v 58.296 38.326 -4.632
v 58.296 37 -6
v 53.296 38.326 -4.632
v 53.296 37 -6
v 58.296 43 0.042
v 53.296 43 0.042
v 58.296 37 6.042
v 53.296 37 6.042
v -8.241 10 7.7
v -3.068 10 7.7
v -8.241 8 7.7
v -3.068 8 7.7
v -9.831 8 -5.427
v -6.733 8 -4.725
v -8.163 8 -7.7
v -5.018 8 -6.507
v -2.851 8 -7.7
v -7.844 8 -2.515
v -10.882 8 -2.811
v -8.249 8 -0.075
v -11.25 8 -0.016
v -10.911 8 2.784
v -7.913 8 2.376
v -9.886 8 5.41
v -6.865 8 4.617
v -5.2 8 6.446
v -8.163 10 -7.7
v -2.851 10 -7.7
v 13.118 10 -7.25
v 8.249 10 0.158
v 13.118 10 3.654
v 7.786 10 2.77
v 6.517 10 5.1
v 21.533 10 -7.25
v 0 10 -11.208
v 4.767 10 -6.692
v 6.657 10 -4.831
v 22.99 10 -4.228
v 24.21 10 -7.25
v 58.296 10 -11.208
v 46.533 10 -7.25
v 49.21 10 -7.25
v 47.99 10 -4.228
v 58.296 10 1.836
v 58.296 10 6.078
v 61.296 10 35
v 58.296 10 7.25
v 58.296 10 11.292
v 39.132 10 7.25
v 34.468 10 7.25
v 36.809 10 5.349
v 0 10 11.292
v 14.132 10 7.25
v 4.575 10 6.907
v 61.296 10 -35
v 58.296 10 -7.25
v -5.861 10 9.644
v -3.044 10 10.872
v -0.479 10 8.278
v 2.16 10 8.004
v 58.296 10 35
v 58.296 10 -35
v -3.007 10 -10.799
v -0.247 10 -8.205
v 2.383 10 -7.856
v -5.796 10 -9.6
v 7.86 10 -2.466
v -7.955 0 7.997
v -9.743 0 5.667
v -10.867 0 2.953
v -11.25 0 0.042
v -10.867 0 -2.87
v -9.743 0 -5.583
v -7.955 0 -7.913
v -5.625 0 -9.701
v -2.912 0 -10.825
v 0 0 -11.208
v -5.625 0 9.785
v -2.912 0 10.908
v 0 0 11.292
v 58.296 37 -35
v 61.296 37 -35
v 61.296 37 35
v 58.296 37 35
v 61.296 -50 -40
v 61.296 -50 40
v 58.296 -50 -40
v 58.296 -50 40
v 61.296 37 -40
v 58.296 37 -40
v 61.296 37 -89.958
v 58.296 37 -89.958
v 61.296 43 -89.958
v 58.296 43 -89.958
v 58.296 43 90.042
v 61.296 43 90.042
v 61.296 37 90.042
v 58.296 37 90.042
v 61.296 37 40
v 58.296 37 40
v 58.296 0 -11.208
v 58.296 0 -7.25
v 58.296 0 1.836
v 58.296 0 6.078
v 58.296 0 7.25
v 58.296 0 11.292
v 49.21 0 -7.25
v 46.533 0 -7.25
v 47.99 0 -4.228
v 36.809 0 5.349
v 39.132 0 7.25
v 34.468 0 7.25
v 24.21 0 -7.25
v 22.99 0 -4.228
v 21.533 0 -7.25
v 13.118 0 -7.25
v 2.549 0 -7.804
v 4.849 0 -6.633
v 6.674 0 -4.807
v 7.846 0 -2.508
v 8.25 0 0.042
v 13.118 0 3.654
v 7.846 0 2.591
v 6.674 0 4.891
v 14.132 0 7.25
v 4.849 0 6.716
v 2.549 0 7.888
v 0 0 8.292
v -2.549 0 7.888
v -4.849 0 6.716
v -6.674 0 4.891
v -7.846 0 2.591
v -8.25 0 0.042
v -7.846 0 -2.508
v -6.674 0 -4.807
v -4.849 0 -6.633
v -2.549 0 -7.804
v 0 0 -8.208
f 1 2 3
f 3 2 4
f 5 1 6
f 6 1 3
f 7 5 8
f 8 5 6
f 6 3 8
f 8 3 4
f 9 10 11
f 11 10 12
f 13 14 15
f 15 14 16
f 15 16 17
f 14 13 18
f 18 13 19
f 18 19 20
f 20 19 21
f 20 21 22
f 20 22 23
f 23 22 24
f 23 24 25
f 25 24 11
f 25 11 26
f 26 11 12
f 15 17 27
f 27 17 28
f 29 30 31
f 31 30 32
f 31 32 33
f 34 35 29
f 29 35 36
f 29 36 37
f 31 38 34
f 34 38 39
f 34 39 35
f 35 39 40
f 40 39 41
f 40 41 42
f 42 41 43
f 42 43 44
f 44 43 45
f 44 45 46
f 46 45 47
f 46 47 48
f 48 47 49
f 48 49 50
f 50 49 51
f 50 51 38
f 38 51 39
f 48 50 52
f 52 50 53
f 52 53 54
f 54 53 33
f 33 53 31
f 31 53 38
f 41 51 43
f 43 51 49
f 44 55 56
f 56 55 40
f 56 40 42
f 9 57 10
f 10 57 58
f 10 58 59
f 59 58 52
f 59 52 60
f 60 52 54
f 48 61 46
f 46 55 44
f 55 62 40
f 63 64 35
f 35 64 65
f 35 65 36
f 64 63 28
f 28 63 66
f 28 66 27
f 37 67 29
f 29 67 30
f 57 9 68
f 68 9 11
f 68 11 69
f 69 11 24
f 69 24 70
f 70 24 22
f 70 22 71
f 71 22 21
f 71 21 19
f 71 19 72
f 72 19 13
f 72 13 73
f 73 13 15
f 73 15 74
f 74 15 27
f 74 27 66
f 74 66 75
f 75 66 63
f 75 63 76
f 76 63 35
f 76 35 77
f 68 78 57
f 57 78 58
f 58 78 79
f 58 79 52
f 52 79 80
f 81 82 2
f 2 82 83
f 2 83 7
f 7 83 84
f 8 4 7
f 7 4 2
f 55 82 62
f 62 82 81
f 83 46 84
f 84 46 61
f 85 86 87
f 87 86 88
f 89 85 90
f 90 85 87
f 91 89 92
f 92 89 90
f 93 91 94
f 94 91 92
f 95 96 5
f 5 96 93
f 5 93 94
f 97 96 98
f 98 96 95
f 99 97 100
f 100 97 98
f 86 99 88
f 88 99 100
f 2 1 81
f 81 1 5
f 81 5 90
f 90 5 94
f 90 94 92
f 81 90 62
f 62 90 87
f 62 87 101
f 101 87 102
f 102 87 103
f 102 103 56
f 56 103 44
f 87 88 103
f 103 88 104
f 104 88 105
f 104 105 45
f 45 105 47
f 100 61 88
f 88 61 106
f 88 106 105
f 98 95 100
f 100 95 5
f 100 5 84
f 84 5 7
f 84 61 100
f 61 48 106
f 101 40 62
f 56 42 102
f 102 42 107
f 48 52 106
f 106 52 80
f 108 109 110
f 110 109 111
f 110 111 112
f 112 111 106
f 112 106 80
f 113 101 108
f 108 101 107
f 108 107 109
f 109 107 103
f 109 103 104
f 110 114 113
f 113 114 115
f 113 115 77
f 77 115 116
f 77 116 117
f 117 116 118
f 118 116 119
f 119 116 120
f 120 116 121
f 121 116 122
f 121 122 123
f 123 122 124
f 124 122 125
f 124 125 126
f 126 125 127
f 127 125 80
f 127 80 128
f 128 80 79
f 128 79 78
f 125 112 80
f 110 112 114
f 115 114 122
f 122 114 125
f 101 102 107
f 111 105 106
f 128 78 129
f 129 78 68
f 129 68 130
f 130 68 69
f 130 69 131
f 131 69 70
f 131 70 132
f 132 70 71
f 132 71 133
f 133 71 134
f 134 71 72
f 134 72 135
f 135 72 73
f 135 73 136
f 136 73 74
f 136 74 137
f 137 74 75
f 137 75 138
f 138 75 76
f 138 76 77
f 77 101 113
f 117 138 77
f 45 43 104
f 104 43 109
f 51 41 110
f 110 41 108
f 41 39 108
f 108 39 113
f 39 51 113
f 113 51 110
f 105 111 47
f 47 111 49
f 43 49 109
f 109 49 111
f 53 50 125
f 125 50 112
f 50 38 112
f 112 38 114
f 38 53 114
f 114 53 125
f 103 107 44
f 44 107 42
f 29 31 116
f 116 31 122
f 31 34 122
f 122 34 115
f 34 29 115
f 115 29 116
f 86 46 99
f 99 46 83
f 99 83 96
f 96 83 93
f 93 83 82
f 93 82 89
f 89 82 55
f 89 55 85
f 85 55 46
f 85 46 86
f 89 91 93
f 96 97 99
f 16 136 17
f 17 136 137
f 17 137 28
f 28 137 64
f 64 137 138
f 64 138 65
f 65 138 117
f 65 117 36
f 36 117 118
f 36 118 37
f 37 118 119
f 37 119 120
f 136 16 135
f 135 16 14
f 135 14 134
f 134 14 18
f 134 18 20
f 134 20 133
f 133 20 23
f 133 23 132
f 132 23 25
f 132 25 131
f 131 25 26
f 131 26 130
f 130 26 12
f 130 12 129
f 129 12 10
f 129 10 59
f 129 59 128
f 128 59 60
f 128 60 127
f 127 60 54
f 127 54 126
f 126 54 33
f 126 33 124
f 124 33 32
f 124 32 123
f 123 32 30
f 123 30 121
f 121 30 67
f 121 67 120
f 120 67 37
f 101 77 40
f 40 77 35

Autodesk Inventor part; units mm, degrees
ref_plane "YZ Plane" through (0, 0, 0) normal (1, 0, 0) x (0, 1, 0)
ref_plane "XZ Plane" through (0, 0, 0) normal (0, 1, 0) x (-1, 0, 0)
ref_plane "XY Plane" through (0, 0, 0) normal (0, 0, 1) x (1, 0, 0)
sketch "Sketch1" plane through (0, 0, 0) normal (0, 1, 0) x (-1, 0, 0)
  line L0 (-122.594, 12.25) -> (-122.594, -12.2908)
  line L1 (-61.296, -11.2083) -> (-61.296, 11.2917)
  line L2 (0, 0) -> (-13.1, 0)
  line L3 (-61.296, 0) -> (-63.296, 0)
  circle A0 centre (0, 0.0417) radius 8.25
  arc A1 (0, -11.2083) -> (0, 11.2917) centre (0, 0.0417) ccw
  line L4 (0, -11.2083) -> (-61.296, -11.2083)
  line L5 (0, 11.2917) -> (-61.296, 11.2917)
  dimension "d24" = 61.296
  dimension "d28" = 16.5
  dimension "d30" = 3
extrude "Extrusion1" add sketch "Sketch1" along normal blind 10
sketch "Sketch3" plane through (0, 10, 0) normal (0, 1, 0) x (1, 0, 0)
  line L0 (8.1183, -12.2504) -> (8.1163, 12.2496)
  line L1 (13.1167, 7.25) -> (13.1179, -7.25)
  line L2 (39.1319, -7.25) -> (47.9899, 4.2277)
  line L3 (36.5087, -5.7388) -> (46.5328, 7.25)
  line L4 (49.2102, 7.25) -> (62.1991, -5.7388)
  line L5 (13.1179, -7.25) -> (61.3127, -7.25)
  line L6 (61.296, -11.2917) -> (61.296, 11.2083) projected
  line L7 (13.1167, 7.25) -> (61.3127, 7.25)
  line L8 (61.3127, -7.25) -> (61.3127, 7.25)
  line L9 (47.9899, 4.2277) -> (59.4676, -7.25)
  line L10 (61.296, -9.1202) -> (61.4899, -9.3141)
  line L11 (49.2102, 7.25) -> (61.296, -4.8775)
  line L12 (13.1179, -7.25) -> (21.1056, -7.25)
  line L13 (21.1056, 7.25) -> (13.1179, 7.25)
  line L14 (13.1179, 7.25) -> (13.1179, -7.25)
  line L15 (24.1056, -7.25) -> (33.7772, -7.25)
  line L16 (21.1057, 5.5674) -> (21.1056, 5.5673)
  line L17 (23.5198, 7.25) -> (23.5198, -7.25)
  line L18 (36.5087, -5.7388) -> (35.3424, -7.25)
  line L19 (11.5087, -5.7388) -> (10.3424, -7.25)
  line L20 (11.5087, -5.7388) -> (21.5328, 7.25)
  line L21 (14.1319, -7.25) -> (22.9899, 4.2277)
  line L22 (22.9899, 4.2277) -> (34.4676, -7.25)
  line L23 (24.2102, 7.25) -> (36.296, -4.8775)
  line L24 (24.2102, 7.25) -> (37.1991, -5.7388)
  line L25 (36.3127, -7.25) -> (36.3127, 7.25)
  line L26 (36.296, -9.1202) -> (36.4899, -9.3141)
  point P0 (0, 0)
  point P1 (0, 0)
  point P2 (61.297, -12.25)
  point P3 (61.295, 12.2704)
  point P4 (62.1991, -5.7388)
  point P5 (61.2954, 7.25)
  point P6 (61.296, -4.8358)
  point P7 (61.296, -7.25)
  point P8 (61.296, 7.25)
  point P9 (13.1179, -1.906)
  point P10 (36.8094, -5.3492)
  point P11 (13.1179, -3.6537)
  point P12 (21.5328, 7.25)
  dimension "d9" = 5
  dimension "d53" = 25
extrude "Extrusion2" cut sketch "Sketch3" against normal blind 10 contours L7 L20 L1 | L21 L22 L17 L5 | L7 L25 L24 | L22 L5 L17 | L7 L3 L24 L25 | L7 L6 L4 | L2 L9 L5
sketch "Sketch7" plane through (0, 10, 0) normal (0, 1, 0) x (1, 0, 0)
  circle A0 centre (0, 0) radius 62.296
  dimension "d20" = 124.592
sketch "Sketch8" plane through (61.296, 0, 12.25) normal (1, 0, 0) x (0, 0, -1)
  line L0 (-27.75, 0) -> (52.25, 0)
  line L1 (52.25, 0) -> (52.25, 10)
  line L2 (52.25, 10) -> (-27.75, 10)
  line L3 (-27.75, 10) -> (-27.75, 0)
  line L4 (-27.75, 0) -> (52.25, 10) construction
  line L5 (52.25, 0) -> (-27.75, 10) construction
  line L6 (52.25, 10) -> (-27.75, 10)
  line L7 (-27.75, 10) -> (-27.75, -50)
  line L8 (-27.75, -50) -> (52.25, -50)
  line L9 (52.25, -50) -> (52.25, 10)
  line L10 (52.25, 10) -> (47.25, 10)
  line L11 (47.25, 10) -> (47.25, 37)
  line L12 (-27.75, 10) -> (52.25, 10)
  line L13 (-27.75, 37) -> (-27.75, 10)
  line L14 (-27.75, 10) -> (-22.75, 10)
  line L15 (-22.75, 10) -> (-22.75, 37)
  line L16 (-22.75, 37) -> (47.25, 37)
  line L17 (52.25, 43) -> (-27.75, 43)
  line L18 (-30.75, 10.375) -> (-30.75, 10)
  line L19 (-77.7917, 37) -> (-77.7917, 43)
  line L20 (-77.7917, 43) -> (102.2083, 43)
  line L21 (102.2083, 43) -> (102.2083, 37)
  line L22 (102.2083, 37) -> (-77.7917, 43) construction
  line L23 (-77.7917, 37) -> (102.2083, 43) construction
  line L24 (-27.75, 37) -> (-77.7917, 37)
  line L25 (52.25, 10) -> (52.25, 37)
  line L26 (52.25, 37) -> (52.25, 10)
  line L27 (102.2083, 37) -> (52.25, 37)
  line L28 (47.25, 37) -> (-22.75, 37)
  line L29 (23.4583, 10) -> (0.9583, 10) projected
  line L30 (12.2083, 10) -> (12.2083, 37)
  point P0 (12.25, 0)
  point P1 (47.25, 10)
  point P2 (-57.7845, 37.6669)
  point P3 (47.25, 10)
  point P4 (12.2083, 40)
  dimension "d21" = 80
  dimension "d34" = 60
  dimension "d41" = 5
  dimension "d44" = 180
  dimension "d58" = 0
extrude "Extrusion4" add sketch "Sketch8" against normal blind 3 contours L3 L2 L1 L0 | L0 L9 L8 L7 | L13 L24 L19 L20 L17 L21 L27 L25 L2 L11 L16 L15
sketch "Sketch11" plane through (0, 10, 0) normal (0, 1, 0) x (1, 0, 0)
  circle A0 centre (0, -0.0417) radius 8.25 projected
  line L0 (-3.0682, -7.7) -> (-14.6805, -7.7)
  line L1 (-14.6805, -7.7) -> (-14.6805, 7.7)
  line L2 (-14.6805, 7.7) -> (-3.0682, 7.7)
  line L3 (-3.0682, 7.7) -> (-3.0682, 7.6165)
  line L4 (-3.0682, -7.7) -> (0, -7.7)
  line L5 (0, -7.7) -> (0, -0.0417)
  line L6 (0, -0.0417) -> (0, 7.7)
  line L7 (0, 7.7) -> (-3.0682, 7.7)
  point P0 (0, 0)
  point P1 (-4.1158, 7.1083)
  point P2 (-2.8509, 7.7)
  dimension "d39" = 15.4
  dimension "d40" = 7.7
extrude "Extrusion6" cut sketch "Sketch11" against normal blind 2 contours L3 L7 A0 | A0 L0 L1 L2 L3 | L4 L5 L6 L7 A0 picked at (0.9906, 5.1042)
sketch "Sketch12" plane through (58.296, 0, 12.25) normal (-1, 0, 0) x (0, 0, 1)
  point P0 (-12.25, 0)
sketch "Sketch14" plane through (58.296, 0, 12.25) normal (-1, 0, 0) x (0, 0, 1)
  line L0 (-102.2083, 43) -> (77.7917, 43) projected
  line L1 (22.75, 37) -> (-47.25, 37) projected
  line L2 (-12.2083, 43) -> (-16.882, 38.3262)
  line L3 (-12.2083, 43) -> (-5.5985, 43) construction
  line L4 (-16.882, 38.3262) -> (-18.25, 37)
  line L5 (-12.2083, 43) -> (-7.0615, 37.8533)
  line L6 (-12.2083, 43) -> (-4.9297, 43) construction
  line L7 (-7.0615, 37.8533) -> (-6.2083, 37)
  line L8 (-6.2083, 37) -> (-18.25, 37)
  point P0 (-12.25, 0)
  dimension "d45" = 135
  dimension "d46" = 45
extrude "Extrusion7" add sketch "Sketch14" along normal blind 5
properties part number "Tower"
